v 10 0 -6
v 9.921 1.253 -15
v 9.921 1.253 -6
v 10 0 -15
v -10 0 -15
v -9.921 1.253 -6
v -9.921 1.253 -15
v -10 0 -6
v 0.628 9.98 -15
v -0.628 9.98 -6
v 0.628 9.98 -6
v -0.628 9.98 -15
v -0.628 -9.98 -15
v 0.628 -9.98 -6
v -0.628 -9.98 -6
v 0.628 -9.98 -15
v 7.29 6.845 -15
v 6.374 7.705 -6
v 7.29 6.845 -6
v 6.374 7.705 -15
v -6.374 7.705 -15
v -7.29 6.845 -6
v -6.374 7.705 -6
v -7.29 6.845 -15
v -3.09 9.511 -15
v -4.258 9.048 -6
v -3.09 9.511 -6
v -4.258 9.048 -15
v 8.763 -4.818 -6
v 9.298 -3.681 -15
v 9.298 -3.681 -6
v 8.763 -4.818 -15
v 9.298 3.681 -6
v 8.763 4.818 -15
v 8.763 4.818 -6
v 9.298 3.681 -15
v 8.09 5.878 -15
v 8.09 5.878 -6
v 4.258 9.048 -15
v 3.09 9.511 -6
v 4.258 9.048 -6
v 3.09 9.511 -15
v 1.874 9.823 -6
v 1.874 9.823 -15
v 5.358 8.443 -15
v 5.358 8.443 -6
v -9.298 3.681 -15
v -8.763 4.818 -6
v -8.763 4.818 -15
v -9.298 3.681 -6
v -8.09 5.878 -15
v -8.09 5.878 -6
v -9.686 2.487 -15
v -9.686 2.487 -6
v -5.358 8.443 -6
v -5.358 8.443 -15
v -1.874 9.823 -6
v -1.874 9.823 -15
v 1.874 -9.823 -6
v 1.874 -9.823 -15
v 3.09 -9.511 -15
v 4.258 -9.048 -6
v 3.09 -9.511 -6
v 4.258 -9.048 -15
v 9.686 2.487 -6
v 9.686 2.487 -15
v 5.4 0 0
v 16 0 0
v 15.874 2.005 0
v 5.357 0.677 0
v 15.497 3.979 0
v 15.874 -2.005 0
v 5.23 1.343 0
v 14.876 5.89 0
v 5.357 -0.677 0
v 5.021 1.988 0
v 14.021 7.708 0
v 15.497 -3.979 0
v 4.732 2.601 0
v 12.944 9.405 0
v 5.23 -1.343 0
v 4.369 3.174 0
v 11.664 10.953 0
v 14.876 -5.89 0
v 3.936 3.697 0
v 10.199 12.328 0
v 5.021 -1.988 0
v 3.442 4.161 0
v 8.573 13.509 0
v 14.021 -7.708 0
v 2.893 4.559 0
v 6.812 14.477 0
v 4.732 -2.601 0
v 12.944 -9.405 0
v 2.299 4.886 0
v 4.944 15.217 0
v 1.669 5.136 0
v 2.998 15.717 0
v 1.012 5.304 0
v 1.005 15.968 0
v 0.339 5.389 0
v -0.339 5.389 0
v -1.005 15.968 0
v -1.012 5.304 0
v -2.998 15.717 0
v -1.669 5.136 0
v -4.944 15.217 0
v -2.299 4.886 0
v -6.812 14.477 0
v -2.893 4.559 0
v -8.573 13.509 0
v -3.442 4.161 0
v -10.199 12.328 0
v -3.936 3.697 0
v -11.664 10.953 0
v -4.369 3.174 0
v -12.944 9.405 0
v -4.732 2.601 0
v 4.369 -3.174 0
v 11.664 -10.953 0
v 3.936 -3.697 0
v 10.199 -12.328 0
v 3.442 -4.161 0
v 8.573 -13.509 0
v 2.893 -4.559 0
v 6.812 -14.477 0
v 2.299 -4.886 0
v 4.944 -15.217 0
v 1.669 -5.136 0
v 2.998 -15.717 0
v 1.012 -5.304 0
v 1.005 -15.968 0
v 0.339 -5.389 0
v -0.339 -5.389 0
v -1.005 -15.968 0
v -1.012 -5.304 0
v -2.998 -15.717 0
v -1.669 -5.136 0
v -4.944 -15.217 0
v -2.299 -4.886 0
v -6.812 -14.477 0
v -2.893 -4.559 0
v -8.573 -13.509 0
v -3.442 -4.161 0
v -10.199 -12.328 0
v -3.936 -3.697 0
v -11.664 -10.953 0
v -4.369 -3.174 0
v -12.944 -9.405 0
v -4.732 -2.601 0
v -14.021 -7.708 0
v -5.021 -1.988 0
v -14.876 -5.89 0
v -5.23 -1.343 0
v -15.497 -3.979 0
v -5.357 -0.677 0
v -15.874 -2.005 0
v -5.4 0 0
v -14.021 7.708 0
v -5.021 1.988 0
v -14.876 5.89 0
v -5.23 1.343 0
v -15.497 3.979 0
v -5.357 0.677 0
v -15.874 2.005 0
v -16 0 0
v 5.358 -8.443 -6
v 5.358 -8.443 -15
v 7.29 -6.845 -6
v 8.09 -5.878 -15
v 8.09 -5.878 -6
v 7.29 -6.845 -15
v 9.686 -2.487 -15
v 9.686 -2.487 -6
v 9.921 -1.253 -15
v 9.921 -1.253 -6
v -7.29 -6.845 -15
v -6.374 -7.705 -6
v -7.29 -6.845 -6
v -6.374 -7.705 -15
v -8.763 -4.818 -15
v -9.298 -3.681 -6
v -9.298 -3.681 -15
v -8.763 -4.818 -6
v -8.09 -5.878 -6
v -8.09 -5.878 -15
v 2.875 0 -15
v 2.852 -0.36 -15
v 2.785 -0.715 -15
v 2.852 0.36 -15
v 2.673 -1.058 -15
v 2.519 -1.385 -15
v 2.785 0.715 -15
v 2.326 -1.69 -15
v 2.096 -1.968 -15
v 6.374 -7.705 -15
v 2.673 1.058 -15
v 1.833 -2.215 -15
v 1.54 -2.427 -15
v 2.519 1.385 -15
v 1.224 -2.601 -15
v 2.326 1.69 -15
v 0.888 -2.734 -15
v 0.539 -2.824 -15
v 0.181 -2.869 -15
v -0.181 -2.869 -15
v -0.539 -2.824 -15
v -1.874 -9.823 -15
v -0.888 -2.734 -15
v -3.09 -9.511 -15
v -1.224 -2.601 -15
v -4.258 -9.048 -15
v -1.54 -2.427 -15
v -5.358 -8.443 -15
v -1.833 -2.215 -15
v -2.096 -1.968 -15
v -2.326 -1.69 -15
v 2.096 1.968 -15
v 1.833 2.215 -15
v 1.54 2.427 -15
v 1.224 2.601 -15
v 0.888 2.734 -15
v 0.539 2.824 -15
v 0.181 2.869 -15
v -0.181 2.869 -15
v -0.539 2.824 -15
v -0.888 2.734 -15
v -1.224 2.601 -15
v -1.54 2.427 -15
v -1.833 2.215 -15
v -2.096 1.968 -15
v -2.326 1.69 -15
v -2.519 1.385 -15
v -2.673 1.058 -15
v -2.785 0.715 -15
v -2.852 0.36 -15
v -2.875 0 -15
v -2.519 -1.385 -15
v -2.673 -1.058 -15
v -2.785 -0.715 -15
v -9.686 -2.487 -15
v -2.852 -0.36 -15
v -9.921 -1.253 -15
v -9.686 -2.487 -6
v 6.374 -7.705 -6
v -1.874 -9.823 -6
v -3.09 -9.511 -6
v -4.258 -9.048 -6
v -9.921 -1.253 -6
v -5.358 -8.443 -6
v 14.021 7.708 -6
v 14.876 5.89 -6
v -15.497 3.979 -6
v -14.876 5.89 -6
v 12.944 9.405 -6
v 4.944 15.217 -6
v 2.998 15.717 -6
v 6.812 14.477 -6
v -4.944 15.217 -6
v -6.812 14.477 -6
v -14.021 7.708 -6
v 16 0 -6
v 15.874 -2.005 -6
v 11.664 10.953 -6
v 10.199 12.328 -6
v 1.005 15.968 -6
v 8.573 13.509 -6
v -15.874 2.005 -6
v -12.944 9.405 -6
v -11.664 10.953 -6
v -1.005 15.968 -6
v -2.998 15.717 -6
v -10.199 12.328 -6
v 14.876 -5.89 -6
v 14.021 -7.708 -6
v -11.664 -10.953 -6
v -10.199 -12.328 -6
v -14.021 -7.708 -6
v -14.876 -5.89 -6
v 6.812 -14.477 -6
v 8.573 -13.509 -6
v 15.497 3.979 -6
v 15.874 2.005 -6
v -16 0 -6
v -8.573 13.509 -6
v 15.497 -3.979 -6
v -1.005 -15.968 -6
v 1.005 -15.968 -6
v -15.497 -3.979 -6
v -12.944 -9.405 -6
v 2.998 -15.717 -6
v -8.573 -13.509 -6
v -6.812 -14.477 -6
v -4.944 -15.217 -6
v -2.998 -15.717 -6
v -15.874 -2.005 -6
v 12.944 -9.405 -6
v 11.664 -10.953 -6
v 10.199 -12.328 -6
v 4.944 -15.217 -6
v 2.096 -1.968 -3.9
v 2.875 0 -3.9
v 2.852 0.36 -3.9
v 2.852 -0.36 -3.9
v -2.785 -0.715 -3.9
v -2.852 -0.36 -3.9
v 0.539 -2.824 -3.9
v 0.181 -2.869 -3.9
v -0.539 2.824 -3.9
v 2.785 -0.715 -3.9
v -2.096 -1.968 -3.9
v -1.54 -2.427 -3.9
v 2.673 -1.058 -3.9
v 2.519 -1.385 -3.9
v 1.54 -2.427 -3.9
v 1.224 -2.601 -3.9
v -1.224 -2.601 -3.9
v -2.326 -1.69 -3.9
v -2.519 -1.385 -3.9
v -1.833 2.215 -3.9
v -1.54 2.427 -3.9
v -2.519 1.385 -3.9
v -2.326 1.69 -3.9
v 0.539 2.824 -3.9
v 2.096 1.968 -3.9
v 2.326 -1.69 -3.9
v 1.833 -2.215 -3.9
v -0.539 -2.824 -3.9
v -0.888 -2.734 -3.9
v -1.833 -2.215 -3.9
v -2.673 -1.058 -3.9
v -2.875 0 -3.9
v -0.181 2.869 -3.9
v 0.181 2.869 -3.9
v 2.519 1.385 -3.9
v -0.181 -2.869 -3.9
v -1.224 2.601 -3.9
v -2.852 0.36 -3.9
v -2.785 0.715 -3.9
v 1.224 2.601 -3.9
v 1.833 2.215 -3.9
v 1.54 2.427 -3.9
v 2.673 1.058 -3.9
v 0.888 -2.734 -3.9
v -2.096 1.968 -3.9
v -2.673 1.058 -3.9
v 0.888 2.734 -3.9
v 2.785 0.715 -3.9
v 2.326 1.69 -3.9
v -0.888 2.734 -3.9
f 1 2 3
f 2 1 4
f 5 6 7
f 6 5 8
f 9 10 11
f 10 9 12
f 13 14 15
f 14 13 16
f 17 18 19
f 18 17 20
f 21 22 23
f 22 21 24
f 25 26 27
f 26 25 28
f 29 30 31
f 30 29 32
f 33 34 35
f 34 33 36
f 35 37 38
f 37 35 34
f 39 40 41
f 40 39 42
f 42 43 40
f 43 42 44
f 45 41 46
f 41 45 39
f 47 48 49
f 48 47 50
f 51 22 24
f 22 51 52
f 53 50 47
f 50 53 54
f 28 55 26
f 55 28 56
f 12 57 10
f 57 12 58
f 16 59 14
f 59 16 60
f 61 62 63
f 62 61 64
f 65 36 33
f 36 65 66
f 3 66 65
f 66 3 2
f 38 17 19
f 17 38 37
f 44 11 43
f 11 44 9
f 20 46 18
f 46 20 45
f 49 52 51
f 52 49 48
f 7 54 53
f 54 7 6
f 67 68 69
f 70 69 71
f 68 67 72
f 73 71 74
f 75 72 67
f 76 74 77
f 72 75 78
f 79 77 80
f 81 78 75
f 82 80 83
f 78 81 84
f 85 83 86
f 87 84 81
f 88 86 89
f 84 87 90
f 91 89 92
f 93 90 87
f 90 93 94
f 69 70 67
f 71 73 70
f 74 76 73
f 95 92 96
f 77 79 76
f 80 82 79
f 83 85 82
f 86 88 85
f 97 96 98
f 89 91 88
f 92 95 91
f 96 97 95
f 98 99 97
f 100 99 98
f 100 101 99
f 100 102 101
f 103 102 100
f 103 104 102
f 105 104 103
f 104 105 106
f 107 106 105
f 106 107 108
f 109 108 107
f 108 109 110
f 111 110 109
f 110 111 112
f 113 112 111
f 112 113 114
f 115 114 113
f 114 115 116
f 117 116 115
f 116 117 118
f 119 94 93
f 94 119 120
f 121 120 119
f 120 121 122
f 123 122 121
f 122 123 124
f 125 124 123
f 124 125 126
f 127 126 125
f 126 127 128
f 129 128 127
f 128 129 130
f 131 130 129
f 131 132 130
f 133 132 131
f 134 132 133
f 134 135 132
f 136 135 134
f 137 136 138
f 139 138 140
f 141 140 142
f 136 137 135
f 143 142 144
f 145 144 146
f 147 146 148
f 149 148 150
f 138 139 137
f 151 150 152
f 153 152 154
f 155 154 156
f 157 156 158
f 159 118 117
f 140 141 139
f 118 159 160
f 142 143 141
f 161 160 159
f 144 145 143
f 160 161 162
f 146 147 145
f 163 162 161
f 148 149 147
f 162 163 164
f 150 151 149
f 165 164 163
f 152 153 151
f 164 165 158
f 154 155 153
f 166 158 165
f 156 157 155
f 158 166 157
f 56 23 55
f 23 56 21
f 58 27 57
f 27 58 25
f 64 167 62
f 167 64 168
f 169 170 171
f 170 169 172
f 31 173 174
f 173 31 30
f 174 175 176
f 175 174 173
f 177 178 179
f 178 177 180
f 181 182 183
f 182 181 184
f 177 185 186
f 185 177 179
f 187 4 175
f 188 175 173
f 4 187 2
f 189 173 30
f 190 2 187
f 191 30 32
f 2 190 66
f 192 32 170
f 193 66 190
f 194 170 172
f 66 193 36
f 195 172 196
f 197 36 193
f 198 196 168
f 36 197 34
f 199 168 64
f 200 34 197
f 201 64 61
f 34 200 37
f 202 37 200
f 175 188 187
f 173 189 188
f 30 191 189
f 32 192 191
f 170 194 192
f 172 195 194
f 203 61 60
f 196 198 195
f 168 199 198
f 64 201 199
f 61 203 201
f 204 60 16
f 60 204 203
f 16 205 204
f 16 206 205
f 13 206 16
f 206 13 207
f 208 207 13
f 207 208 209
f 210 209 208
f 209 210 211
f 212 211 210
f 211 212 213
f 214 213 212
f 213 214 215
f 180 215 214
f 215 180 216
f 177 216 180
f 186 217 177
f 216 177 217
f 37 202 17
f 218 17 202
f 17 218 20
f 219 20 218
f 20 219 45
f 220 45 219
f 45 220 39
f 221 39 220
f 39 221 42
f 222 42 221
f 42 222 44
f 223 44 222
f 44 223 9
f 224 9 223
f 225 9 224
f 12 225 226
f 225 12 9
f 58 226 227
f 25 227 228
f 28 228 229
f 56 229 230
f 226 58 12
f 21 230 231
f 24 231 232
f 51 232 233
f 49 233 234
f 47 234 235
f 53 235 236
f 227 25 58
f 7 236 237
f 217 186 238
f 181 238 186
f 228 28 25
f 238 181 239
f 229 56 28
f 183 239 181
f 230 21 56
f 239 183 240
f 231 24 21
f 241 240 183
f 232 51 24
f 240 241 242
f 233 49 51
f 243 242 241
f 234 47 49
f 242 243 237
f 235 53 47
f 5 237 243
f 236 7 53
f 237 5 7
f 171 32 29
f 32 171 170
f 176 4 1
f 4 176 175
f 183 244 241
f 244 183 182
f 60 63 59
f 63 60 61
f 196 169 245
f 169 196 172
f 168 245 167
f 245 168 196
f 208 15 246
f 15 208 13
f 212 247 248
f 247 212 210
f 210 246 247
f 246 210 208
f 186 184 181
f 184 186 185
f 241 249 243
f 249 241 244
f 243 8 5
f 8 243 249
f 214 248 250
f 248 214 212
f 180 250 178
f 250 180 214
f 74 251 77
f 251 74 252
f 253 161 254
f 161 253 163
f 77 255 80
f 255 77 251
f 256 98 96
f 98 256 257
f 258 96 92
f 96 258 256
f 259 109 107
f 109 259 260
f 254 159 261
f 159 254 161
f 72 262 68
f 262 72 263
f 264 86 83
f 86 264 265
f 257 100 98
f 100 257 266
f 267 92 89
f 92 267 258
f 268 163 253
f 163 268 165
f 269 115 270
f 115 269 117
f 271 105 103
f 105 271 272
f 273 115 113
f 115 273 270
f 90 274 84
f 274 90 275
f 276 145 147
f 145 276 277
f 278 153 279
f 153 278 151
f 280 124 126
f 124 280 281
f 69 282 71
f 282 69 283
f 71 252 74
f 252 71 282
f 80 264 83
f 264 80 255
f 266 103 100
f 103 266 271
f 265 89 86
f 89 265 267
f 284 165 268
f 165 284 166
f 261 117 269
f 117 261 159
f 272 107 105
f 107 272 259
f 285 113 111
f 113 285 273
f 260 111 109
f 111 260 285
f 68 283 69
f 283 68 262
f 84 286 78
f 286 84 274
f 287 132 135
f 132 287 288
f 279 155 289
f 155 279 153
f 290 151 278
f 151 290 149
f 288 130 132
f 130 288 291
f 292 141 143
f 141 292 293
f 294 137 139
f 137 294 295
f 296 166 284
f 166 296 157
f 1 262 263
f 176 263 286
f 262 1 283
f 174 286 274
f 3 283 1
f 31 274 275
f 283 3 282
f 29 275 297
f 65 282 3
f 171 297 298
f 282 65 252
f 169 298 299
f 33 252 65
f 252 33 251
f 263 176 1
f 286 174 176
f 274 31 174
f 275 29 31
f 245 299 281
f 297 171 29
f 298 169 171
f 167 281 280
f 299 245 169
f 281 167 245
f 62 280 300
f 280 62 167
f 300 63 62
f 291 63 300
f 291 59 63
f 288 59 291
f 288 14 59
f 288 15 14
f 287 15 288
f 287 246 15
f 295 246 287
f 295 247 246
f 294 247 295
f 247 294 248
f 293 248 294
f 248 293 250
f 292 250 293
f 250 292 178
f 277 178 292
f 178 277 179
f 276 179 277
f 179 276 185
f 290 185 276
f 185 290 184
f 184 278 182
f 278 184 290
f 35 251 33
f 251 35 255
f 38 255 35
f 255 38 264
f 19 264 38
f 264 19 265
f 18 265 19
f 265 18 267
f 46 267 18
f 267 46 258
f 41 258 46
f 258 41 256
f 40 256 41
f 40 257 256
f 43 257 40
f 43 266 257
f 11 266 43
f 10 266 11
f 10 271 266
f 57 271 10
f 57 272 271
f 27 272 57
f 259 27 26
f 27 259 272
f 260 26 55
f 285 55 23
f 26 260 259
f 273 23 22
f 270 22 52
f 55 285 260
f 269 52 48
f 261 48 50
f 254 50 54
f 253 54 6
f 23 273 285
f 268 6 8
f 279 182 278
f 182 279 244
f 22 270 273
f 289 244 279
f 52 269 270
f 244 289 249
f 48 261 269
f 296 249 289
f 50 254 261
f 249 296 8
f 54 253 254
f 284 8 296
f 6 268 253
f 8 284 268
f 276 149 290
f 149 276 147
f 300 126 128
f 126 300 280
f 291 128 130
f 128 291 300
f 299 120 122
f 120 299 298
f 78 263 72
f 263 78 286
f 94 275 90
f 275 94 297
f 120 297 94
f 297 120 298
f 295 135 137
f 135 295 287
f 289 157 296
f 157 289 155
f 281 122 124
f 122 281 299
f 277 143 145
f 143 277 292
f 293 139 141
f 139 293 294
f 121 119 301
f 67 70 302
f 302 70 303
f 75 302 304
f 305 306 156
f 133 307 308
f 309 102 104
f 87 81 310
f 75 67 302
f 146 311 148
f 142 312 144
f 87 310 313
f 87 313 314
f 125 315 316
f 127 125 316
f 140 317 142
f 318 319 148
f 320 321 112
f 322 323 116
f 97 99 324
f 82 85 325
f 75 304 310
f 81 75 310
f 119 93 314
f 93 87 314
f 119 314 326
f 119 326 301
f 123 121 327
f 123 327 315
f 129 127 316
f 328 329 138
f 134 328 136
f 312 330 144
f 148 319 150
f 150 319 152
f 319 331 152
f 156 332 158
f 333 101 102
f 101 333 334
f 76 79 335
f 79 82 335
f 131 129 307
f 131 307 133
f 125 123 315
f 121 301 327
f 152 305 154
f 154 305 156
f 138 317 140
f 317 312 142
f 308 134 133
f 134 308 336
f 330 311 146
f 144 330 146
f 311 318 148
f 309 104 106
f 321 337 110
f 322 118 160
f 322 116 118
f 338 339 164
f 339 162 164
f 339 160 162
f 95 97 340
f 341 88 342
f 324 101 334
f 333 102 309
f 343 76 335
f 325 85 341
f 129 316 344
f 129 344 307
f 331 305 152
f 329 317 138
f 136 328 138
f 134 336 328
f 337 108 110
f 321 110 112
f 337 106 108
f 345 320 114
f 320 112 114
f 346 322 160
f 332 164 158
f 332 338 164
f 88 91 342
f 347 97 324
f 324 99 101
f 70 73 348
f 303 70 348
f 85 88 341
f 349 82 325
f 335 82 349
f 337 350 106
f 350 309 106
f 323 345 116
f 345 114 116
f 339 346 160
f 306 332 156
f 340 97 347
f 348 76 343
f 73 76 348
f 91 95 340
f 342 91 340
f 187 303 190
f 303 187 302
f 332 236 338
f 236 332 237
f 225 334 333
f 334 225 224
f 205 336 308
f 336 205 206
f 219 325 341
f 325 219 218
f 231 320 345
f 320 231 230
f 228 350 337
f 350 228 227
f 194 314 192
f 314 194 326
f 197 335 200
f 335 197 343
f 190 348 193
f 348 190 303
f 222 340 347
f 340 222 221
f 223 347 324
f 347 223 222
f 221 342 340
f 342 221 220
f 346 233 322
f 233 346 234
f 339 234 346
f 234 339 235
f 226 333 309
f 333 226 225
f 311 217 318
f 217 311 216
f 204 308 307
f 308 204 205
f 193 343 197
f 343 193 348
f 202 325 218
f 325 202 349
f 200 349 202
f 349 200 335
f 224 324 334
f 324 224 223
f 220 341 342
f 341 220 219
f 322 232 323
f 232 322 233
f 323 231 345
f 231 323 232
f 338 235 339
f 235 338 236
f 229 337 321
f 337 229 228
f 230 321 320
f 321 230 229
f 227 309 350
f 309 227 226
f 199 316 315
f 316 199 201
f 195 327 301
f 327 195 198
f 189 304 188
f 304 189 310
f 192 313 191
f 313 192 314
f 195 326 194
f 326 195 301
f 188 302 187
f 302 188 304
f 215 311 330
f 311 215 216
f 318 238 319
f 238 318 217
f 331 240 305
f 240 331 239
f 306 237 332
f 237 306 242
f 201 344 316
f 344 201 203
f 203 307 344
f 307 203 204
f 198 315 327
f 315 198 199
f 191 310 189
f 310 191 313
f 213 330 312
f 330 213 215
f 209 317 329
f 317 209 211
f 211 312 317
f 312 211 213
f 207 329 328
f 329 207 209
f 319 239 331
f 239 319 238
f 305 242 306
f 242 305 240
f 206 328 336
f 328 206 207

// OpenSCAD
$fn = 50;


difference() {
	union() {
		translate(v = [0, 0, -15.0000000000]) {
			cylinder(h = 15, r = 10.0000000000);
		}
		translate(v = [0, 0, -6.0000000000]) {
			cylinder(h = 6, r = 16.0000000000);
		}
	}
	union() {
		translate(v = [0, 0, 0]) {
			rotate(a = [0, 0, 0]) {
				difference() {
					union() {
						#translate(v = [0, 0, -15.0000000000]) {
							cylinder(h = 15, r = 2.6000000000);
						}
						#translate(v = [0, 0, -3.9000000000]) {
							cylinder(h = 3.9000000000, r = 10.0000000000, r1 = 2.8750000000, r2 = 5.4000000000);
						}
						#translate(v = [0, 0, -15.0000000000]) {
							cylinder(h = 15, r = 2.8750000000);
						}
						#translate(v = [0, 0, -15.0000000000]) {
							cylinder(h = 15, r = 2.6000000000);
						}
					}
					union();
				}
			}
		}
	}
}
